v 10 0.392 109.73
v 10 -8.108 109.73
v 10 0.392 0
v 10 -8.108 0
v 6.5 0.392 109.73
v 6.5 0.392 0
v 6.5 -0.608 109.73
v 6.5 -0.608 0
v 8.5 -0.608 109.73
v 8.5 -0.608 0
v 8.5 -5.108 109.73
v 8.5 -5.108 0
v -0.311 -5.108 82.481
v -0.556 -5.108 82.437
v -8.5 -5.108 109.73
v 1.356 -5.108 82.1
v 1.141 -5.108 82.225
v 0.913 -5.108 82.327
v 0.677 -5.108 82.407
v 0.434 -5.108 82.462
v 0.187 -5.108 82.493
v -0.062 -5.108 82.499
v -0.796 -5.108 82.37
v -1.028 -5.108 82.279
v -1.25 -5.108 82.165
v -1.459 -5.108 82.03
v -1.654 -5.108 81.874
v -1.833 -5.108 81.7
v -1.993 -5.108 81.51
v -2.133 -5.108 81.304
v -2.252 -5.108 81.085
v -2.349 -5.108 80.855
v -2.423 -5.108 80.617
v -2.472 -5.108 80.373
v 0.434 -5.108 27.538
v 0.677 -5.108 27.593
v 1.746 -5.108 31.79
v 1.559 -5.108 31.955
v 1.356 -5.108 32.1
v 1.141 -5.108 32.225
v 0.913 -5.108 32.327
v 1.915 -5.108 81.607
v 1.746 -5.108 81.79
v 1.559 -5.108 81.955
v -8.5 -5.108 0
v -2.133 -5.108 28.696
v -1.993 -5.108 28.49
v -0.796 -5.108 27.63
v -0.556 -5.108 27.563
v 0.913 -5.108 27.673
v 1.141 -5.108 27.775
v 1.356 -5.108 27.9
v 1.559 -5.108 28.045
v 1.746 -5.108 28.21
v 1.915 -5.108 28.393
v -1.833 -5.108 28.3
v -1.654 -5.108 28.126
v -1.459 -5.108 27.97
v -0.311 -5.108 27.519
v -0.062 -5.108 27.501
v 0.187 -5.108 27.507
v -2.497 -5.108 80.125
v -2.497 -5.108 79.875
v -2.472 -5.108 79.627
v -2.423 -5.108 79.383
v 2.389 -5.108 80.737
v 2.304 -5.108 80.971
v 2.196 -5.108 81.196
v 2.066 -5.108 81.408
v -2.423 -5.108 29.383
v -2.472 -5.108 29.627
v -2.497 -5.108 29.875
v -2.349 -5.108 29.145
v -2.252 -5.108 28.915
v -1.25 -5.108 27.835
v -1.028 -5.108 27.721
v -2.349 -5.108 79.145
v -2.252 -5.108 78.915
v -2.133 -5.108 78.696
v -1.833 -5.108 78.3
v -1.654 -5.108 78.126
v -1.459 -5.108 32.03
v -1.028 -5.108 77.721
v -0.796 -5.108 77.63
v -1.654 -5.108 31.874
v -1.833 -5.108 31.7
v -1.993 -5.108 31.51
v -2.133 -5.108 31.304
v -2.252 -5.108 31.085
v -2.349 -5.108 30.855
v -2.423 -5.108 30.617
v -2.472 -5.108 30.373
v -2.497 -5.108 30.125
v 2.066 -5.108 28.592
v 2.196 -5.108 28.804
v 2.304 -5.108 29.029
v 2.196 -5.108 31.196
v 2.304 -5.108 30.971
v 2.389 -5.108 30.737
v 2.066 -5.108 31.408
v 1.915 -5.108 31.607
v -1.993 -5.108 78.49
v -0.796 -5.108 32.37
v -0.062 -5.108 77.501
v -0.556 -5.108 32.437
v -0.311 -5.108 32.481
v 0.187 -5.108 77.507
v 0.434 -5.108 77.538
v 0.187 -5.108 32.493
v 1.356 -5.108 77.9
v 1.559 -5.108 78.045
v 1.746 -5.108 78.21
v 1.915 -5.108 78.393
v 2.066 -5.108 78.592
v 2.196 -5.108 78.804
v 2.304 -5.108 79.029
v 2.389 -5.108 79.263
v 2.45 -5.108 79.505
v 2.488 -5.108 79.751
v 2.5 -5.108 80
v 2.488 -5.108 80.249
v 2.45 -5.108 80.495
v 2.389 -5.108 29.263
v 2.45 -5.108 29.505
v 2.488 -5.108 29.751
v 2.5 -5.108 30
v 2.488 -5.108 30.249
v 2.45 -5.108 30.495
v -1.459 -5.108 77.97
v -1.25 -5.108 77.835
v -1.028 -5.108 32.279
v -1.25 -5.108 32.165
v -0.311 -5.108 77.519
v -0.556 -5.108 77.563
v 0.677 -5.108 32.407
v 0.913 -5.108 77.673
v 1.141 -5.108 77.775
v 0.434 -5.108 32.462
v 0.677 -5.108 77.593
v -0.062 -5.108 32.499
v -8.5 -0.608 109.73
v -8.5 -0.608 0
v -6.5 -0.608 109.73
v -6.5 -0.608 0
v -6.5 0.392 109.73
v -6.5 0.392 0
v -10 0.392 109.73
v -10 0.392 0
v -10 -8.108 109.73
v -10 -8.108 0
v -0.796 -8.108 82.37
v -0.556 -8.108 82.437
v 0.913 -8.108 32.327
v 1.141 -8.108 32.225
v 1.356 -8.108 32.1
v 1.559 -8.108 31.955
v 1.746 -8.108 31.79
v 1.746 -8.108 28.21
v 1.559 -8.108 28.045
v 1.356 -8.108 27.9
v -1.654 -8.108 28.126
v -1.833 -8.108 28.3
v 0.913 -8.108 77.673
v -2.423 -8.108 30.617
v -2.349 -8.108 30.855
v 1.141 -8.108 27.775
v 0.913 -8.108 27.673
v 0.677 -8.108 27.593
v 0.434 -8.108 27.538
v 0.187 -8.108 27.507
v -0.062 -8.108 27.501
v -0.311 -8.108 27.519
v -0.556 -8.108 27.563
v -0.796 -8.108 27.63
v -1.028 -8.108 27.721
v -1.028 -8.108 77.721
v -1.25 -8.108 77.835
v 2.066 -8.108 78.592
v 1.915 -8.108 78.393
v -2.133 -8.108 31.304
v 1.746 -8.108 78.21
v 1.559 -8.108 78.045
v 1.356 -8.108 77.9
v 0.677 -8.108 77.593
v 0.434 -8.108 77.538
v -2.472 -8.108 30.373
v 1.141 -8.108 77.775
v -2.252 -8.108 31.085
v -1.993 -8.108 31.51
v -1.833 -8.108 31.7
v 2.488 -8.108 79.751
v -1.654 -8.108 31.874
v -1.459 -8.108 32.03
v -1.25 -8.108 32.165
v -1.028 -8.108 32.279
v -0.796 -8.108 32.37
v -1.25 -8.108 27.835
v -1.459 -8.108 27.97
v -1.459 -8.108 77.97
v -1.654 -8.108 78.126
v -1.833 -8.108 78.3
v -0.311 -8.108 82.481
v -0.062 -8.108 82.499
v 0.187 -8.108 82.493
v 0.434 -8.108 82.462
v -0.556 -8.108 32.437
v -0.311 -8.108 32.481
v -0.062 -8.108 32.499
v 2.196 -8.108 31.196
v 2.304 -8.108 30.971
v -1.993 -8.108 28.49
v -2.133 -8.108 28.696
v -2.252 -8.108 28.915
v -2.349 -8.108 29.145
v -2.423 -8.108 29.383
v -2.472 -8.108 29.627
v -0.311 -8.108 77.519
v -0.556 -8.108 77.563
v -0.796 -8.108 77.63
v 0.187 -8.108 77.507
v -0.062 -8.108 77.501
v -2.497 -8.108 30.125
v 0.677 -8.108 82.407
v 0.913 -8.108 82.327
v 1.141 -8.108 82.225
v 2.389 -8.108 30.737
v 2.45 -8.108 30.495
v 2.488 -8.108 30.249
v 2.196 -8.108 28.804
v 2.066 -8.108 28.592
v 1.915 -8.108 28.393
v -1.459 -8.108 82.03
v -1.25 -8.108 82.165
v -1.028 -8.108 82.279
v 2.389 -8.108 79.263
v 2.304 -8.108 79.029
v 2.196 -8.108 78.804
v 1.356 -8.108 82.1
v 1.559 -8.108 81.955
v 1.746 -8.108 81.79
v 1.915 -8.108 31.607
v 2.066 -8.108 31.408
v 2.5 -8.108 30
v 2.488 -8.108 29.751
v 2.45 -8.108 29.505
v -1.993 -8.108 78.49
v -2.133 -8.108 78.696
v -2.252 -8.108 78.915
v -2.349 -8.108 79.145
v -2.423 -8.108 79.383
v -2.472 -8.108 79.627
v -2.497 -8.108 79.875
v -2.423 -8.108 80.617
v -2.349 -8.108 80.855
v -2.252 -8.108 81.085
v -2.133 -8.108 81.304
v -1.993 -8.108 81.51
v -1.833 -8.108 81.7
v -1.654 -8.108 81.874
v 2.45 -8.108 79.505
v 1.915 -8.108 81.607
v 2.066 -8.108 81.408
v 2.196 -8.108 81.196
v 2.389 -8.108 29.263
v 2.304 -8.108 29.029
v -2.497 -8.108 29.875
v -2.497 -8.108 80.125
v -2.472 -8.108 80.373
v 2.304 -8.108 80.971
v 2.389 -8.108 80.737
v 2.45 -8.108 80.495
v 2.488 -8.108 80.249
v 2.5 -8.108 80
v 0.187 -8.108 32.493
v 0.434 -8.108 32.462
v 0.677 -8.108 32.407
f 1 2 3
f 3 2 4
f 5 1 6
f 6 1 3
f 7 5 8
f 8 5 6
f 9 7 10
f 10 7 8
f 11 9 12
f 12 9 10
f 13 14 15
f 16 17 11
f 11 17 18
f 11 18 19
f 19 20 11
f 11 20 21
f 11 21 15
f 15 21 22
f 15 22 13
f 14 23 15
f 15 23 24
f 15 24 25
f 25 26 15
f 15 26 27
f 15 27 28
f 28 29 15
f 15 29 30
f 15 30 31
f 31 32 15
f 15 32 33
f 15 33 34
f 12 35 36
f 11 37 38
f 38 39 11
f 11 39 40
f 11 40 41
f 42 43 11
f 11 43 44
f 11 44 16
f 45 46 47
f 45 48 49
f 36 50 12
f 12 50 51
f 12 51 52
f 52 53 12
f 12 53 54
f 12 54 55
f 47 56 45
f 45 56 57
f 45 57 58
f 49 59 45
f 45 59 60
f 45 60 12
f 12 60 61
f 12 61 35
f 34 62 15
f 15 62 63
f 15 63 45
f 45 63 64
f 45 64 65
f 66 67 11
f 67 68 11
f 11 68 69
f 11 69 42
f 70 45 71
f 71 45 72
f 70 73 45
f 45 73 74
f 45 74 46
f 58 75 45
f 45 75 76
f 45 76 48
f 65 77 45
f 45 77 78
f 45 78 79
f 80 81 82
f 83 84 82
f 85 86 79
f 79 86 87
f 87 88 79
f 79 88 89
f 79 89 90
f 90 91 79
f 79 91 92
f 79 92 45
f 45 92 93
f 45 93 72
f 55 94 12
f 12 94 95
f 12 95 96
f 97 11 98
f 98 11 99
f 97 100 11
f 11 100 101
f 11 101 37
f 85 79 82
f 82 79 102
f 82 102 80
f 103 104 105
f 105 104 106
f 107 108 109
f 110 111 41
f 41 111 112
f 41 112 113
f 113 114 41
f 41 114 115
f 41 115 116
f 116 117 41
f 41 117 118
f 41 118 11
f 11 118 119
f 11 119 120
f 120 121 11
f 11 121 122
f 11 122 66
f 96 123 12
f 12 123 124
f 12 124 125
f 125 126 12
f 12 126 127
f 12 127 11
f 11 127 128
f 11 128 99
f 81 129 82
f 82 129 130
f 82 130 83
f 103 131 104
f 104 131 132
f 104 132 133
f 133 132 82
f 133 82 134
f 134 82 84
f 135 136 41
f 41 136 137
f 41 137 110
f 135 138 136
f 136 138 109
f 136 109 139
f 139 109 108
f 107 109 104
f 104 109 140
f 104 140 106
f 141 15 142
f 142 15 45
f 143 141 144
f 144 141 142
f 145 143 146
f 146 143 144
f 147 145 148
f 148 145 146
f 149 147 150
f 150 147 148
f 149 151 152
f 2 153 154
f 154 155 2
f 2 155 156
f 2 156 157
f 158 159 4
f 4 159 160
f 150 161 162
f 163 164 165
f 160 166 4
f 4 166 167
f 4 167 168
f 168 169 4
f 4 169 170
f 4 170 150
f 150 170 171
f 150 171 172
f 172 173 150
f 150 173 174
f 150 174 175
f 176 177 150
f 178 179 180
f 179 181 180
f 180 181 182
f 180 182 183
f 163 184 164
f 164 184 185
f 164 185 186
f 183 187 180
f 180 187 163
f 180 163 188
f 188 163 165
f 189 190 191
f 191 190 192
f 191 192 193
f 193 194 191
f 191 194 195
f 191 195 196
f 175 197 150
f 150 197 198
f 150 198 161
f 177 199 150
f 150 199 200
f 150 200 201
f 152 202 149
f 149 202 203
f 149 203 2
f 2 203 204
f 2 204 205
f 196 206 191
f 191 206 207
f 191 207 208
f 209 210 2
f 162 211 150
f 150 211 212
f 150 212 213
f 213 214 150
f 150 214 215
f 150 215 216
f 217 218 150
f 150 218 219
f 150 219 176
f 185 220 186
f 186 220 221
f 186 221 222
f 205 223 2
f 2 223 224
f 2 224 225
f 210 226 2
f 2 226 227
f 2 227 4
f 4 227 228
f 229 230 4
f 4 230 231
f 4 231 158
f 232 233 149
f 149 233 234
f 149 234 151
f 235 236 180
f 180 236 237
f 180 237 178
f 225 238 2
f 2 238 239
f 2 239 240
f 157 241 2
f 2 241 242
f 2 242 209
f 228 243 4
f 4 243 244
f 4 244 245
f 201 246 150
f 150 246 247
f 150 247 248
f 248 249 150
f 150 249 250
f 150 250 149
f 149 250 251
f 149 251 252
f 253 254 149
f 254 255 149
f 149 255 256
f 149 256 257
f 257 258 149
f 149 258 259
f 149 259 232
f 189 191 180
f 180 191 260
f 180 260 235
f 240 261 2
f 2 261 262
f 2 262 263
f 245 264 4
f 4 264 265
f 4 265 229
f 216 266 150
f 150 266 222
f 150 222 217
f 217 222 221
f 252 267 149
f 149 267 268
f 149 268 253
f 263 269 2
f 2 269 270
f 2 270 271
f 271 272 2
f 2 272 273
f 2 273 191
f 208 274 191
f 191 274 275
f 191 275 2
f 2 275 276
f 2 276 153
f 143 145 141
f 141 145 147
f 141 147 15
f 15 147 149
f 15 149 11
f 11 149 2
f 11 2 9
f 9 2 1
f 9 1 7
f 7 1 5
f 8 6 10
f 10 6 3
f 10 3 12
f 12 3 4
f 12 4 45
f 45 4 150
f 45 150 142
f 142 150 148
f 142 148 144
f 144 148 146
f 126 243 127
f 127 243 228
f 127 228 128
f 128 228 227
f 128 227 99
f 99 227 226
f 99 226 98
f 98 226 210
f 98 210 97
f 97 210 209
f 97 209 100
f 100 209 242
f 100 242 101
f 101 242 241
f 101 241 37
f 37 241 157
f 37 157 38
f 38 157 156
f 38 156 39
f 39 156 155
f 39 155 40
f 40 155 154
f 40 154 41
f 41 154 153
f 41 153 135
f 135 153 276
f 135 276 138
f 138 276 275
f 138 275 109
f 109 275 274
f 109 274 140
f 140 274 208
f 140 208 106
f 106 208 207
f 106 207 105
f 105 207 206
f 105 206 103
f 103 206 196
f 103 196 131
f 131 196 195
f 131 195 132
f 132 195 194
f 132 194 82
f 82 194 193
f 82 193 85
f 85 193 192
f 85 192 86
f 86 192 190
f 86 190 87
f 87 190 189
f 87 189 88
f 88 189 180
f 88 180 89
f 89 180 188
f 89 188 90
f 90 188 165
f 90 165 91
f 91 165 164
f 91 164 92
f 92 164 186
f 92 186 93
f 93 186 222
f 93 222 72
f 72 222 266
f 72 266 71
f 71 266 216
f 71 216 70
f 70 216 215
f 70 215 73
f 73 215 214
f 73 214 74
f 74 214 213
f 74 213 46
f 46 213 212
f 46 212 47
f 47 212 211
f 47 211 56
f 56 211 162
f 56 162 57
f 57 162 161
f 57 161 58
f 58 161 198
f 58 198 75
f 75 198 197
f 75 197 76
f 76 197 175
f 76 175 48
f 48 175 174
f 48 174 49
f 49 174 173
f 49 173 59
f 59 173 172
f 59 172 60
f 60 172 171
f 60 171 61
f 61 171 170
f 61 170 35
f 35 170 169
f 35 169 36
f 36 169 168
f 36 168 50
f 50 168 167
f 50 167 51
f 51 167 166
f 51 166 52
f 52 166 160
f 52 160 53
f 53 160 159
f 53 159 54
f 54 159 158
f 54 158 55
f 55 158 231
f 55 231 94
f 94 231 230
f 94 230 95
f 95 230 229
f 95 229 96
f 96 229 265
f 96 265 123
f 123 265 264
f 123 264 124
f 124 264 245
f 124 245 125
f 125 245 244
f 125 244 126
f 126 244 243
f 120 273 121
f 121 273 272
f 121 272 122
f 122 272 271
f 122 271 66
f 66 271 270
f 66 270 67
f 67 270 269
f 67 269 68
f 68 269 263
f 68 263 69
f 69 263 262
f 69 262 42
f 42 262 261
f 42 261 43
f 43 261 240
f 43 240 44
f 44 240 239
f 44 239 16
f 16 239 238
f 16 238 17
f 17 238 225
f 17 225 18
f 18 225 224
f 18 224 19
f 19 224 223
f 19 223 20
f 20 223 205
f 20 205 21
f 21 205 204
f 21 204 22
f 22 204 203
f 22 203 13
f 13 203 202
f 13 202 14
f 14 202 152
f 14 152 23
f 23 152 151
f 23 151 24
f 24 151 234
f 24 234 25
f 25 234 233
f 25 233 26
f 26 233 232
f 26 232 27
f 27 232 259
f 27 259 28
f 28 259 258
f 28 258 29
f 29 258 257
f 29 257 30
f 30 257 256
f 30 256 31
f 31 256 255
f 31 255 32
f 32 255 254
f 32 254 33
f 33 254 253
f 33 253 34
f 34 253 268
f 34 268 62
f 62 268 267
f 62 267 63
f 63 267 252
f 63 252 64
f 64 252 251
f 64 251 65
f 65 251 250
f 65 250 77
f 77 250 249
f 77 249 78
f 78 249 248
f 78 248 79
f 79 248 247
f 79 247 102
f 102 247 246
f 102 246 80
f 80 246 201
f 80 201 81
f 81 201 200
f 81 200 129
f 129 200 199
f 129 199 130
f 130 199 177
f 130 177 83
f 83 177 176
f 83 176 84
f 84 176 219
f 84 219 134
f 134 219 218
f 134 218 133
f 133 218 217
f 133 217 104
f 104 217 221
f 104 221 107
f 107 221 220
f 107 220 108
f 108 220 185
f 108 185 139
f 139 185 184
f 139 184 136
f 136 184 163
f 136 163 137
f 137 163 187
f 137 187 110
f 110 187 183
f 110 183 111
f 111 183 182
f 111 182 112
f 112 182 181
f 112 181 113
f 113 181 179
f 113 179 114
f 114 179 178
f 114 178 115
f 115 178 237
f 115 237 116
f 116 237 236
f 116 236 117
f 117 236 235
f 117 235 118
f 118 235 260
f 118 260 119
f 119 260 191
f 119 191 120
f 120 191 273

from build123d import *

# Parameters (mm, degrees)
BOSS_EXTRUDE2_DEPTH = 109.73
SKETCH2_R           = 2.5
CUT_EXTRUDE1_DEPTH  = 10


with BuildPart() as part:
    # Sketch1 → Boss-Extrude2 (new body)
    with BuildSketch(Plane.XY):
        Polygon((-10, 0.391567614), (-10, -3.576580006), (-10, -8.108432386), (10, -8.108432386), (10, 0.391567614), (6.5, 0.391567614), (6.5, -0.608432386), (8.5, -0.608432386), (8.5, -5.108432386), (-8.5, -5.108432386), (-8.5, -0.608432386), (-6.5, -0.608432386), (-6.5, 0.391567614), align=None)
    extrude(amount=BOSS_EXTRUDE2_DEPTH)

    # Sketch2 → Cut-Extrude1 (cut)
    with BuildSketch(Plane.XZ.offset(8.108432386)):
        with Locations((0, 30)):
            Circle(SKETCH2_R)
        with Locations((0, 80)):
            Circle(SKETCH2_R)
    extrude(amount=-CUT_EXTRUDE1_DEPTH, mode=Mode.SUBTRACT)


solid = part.part
